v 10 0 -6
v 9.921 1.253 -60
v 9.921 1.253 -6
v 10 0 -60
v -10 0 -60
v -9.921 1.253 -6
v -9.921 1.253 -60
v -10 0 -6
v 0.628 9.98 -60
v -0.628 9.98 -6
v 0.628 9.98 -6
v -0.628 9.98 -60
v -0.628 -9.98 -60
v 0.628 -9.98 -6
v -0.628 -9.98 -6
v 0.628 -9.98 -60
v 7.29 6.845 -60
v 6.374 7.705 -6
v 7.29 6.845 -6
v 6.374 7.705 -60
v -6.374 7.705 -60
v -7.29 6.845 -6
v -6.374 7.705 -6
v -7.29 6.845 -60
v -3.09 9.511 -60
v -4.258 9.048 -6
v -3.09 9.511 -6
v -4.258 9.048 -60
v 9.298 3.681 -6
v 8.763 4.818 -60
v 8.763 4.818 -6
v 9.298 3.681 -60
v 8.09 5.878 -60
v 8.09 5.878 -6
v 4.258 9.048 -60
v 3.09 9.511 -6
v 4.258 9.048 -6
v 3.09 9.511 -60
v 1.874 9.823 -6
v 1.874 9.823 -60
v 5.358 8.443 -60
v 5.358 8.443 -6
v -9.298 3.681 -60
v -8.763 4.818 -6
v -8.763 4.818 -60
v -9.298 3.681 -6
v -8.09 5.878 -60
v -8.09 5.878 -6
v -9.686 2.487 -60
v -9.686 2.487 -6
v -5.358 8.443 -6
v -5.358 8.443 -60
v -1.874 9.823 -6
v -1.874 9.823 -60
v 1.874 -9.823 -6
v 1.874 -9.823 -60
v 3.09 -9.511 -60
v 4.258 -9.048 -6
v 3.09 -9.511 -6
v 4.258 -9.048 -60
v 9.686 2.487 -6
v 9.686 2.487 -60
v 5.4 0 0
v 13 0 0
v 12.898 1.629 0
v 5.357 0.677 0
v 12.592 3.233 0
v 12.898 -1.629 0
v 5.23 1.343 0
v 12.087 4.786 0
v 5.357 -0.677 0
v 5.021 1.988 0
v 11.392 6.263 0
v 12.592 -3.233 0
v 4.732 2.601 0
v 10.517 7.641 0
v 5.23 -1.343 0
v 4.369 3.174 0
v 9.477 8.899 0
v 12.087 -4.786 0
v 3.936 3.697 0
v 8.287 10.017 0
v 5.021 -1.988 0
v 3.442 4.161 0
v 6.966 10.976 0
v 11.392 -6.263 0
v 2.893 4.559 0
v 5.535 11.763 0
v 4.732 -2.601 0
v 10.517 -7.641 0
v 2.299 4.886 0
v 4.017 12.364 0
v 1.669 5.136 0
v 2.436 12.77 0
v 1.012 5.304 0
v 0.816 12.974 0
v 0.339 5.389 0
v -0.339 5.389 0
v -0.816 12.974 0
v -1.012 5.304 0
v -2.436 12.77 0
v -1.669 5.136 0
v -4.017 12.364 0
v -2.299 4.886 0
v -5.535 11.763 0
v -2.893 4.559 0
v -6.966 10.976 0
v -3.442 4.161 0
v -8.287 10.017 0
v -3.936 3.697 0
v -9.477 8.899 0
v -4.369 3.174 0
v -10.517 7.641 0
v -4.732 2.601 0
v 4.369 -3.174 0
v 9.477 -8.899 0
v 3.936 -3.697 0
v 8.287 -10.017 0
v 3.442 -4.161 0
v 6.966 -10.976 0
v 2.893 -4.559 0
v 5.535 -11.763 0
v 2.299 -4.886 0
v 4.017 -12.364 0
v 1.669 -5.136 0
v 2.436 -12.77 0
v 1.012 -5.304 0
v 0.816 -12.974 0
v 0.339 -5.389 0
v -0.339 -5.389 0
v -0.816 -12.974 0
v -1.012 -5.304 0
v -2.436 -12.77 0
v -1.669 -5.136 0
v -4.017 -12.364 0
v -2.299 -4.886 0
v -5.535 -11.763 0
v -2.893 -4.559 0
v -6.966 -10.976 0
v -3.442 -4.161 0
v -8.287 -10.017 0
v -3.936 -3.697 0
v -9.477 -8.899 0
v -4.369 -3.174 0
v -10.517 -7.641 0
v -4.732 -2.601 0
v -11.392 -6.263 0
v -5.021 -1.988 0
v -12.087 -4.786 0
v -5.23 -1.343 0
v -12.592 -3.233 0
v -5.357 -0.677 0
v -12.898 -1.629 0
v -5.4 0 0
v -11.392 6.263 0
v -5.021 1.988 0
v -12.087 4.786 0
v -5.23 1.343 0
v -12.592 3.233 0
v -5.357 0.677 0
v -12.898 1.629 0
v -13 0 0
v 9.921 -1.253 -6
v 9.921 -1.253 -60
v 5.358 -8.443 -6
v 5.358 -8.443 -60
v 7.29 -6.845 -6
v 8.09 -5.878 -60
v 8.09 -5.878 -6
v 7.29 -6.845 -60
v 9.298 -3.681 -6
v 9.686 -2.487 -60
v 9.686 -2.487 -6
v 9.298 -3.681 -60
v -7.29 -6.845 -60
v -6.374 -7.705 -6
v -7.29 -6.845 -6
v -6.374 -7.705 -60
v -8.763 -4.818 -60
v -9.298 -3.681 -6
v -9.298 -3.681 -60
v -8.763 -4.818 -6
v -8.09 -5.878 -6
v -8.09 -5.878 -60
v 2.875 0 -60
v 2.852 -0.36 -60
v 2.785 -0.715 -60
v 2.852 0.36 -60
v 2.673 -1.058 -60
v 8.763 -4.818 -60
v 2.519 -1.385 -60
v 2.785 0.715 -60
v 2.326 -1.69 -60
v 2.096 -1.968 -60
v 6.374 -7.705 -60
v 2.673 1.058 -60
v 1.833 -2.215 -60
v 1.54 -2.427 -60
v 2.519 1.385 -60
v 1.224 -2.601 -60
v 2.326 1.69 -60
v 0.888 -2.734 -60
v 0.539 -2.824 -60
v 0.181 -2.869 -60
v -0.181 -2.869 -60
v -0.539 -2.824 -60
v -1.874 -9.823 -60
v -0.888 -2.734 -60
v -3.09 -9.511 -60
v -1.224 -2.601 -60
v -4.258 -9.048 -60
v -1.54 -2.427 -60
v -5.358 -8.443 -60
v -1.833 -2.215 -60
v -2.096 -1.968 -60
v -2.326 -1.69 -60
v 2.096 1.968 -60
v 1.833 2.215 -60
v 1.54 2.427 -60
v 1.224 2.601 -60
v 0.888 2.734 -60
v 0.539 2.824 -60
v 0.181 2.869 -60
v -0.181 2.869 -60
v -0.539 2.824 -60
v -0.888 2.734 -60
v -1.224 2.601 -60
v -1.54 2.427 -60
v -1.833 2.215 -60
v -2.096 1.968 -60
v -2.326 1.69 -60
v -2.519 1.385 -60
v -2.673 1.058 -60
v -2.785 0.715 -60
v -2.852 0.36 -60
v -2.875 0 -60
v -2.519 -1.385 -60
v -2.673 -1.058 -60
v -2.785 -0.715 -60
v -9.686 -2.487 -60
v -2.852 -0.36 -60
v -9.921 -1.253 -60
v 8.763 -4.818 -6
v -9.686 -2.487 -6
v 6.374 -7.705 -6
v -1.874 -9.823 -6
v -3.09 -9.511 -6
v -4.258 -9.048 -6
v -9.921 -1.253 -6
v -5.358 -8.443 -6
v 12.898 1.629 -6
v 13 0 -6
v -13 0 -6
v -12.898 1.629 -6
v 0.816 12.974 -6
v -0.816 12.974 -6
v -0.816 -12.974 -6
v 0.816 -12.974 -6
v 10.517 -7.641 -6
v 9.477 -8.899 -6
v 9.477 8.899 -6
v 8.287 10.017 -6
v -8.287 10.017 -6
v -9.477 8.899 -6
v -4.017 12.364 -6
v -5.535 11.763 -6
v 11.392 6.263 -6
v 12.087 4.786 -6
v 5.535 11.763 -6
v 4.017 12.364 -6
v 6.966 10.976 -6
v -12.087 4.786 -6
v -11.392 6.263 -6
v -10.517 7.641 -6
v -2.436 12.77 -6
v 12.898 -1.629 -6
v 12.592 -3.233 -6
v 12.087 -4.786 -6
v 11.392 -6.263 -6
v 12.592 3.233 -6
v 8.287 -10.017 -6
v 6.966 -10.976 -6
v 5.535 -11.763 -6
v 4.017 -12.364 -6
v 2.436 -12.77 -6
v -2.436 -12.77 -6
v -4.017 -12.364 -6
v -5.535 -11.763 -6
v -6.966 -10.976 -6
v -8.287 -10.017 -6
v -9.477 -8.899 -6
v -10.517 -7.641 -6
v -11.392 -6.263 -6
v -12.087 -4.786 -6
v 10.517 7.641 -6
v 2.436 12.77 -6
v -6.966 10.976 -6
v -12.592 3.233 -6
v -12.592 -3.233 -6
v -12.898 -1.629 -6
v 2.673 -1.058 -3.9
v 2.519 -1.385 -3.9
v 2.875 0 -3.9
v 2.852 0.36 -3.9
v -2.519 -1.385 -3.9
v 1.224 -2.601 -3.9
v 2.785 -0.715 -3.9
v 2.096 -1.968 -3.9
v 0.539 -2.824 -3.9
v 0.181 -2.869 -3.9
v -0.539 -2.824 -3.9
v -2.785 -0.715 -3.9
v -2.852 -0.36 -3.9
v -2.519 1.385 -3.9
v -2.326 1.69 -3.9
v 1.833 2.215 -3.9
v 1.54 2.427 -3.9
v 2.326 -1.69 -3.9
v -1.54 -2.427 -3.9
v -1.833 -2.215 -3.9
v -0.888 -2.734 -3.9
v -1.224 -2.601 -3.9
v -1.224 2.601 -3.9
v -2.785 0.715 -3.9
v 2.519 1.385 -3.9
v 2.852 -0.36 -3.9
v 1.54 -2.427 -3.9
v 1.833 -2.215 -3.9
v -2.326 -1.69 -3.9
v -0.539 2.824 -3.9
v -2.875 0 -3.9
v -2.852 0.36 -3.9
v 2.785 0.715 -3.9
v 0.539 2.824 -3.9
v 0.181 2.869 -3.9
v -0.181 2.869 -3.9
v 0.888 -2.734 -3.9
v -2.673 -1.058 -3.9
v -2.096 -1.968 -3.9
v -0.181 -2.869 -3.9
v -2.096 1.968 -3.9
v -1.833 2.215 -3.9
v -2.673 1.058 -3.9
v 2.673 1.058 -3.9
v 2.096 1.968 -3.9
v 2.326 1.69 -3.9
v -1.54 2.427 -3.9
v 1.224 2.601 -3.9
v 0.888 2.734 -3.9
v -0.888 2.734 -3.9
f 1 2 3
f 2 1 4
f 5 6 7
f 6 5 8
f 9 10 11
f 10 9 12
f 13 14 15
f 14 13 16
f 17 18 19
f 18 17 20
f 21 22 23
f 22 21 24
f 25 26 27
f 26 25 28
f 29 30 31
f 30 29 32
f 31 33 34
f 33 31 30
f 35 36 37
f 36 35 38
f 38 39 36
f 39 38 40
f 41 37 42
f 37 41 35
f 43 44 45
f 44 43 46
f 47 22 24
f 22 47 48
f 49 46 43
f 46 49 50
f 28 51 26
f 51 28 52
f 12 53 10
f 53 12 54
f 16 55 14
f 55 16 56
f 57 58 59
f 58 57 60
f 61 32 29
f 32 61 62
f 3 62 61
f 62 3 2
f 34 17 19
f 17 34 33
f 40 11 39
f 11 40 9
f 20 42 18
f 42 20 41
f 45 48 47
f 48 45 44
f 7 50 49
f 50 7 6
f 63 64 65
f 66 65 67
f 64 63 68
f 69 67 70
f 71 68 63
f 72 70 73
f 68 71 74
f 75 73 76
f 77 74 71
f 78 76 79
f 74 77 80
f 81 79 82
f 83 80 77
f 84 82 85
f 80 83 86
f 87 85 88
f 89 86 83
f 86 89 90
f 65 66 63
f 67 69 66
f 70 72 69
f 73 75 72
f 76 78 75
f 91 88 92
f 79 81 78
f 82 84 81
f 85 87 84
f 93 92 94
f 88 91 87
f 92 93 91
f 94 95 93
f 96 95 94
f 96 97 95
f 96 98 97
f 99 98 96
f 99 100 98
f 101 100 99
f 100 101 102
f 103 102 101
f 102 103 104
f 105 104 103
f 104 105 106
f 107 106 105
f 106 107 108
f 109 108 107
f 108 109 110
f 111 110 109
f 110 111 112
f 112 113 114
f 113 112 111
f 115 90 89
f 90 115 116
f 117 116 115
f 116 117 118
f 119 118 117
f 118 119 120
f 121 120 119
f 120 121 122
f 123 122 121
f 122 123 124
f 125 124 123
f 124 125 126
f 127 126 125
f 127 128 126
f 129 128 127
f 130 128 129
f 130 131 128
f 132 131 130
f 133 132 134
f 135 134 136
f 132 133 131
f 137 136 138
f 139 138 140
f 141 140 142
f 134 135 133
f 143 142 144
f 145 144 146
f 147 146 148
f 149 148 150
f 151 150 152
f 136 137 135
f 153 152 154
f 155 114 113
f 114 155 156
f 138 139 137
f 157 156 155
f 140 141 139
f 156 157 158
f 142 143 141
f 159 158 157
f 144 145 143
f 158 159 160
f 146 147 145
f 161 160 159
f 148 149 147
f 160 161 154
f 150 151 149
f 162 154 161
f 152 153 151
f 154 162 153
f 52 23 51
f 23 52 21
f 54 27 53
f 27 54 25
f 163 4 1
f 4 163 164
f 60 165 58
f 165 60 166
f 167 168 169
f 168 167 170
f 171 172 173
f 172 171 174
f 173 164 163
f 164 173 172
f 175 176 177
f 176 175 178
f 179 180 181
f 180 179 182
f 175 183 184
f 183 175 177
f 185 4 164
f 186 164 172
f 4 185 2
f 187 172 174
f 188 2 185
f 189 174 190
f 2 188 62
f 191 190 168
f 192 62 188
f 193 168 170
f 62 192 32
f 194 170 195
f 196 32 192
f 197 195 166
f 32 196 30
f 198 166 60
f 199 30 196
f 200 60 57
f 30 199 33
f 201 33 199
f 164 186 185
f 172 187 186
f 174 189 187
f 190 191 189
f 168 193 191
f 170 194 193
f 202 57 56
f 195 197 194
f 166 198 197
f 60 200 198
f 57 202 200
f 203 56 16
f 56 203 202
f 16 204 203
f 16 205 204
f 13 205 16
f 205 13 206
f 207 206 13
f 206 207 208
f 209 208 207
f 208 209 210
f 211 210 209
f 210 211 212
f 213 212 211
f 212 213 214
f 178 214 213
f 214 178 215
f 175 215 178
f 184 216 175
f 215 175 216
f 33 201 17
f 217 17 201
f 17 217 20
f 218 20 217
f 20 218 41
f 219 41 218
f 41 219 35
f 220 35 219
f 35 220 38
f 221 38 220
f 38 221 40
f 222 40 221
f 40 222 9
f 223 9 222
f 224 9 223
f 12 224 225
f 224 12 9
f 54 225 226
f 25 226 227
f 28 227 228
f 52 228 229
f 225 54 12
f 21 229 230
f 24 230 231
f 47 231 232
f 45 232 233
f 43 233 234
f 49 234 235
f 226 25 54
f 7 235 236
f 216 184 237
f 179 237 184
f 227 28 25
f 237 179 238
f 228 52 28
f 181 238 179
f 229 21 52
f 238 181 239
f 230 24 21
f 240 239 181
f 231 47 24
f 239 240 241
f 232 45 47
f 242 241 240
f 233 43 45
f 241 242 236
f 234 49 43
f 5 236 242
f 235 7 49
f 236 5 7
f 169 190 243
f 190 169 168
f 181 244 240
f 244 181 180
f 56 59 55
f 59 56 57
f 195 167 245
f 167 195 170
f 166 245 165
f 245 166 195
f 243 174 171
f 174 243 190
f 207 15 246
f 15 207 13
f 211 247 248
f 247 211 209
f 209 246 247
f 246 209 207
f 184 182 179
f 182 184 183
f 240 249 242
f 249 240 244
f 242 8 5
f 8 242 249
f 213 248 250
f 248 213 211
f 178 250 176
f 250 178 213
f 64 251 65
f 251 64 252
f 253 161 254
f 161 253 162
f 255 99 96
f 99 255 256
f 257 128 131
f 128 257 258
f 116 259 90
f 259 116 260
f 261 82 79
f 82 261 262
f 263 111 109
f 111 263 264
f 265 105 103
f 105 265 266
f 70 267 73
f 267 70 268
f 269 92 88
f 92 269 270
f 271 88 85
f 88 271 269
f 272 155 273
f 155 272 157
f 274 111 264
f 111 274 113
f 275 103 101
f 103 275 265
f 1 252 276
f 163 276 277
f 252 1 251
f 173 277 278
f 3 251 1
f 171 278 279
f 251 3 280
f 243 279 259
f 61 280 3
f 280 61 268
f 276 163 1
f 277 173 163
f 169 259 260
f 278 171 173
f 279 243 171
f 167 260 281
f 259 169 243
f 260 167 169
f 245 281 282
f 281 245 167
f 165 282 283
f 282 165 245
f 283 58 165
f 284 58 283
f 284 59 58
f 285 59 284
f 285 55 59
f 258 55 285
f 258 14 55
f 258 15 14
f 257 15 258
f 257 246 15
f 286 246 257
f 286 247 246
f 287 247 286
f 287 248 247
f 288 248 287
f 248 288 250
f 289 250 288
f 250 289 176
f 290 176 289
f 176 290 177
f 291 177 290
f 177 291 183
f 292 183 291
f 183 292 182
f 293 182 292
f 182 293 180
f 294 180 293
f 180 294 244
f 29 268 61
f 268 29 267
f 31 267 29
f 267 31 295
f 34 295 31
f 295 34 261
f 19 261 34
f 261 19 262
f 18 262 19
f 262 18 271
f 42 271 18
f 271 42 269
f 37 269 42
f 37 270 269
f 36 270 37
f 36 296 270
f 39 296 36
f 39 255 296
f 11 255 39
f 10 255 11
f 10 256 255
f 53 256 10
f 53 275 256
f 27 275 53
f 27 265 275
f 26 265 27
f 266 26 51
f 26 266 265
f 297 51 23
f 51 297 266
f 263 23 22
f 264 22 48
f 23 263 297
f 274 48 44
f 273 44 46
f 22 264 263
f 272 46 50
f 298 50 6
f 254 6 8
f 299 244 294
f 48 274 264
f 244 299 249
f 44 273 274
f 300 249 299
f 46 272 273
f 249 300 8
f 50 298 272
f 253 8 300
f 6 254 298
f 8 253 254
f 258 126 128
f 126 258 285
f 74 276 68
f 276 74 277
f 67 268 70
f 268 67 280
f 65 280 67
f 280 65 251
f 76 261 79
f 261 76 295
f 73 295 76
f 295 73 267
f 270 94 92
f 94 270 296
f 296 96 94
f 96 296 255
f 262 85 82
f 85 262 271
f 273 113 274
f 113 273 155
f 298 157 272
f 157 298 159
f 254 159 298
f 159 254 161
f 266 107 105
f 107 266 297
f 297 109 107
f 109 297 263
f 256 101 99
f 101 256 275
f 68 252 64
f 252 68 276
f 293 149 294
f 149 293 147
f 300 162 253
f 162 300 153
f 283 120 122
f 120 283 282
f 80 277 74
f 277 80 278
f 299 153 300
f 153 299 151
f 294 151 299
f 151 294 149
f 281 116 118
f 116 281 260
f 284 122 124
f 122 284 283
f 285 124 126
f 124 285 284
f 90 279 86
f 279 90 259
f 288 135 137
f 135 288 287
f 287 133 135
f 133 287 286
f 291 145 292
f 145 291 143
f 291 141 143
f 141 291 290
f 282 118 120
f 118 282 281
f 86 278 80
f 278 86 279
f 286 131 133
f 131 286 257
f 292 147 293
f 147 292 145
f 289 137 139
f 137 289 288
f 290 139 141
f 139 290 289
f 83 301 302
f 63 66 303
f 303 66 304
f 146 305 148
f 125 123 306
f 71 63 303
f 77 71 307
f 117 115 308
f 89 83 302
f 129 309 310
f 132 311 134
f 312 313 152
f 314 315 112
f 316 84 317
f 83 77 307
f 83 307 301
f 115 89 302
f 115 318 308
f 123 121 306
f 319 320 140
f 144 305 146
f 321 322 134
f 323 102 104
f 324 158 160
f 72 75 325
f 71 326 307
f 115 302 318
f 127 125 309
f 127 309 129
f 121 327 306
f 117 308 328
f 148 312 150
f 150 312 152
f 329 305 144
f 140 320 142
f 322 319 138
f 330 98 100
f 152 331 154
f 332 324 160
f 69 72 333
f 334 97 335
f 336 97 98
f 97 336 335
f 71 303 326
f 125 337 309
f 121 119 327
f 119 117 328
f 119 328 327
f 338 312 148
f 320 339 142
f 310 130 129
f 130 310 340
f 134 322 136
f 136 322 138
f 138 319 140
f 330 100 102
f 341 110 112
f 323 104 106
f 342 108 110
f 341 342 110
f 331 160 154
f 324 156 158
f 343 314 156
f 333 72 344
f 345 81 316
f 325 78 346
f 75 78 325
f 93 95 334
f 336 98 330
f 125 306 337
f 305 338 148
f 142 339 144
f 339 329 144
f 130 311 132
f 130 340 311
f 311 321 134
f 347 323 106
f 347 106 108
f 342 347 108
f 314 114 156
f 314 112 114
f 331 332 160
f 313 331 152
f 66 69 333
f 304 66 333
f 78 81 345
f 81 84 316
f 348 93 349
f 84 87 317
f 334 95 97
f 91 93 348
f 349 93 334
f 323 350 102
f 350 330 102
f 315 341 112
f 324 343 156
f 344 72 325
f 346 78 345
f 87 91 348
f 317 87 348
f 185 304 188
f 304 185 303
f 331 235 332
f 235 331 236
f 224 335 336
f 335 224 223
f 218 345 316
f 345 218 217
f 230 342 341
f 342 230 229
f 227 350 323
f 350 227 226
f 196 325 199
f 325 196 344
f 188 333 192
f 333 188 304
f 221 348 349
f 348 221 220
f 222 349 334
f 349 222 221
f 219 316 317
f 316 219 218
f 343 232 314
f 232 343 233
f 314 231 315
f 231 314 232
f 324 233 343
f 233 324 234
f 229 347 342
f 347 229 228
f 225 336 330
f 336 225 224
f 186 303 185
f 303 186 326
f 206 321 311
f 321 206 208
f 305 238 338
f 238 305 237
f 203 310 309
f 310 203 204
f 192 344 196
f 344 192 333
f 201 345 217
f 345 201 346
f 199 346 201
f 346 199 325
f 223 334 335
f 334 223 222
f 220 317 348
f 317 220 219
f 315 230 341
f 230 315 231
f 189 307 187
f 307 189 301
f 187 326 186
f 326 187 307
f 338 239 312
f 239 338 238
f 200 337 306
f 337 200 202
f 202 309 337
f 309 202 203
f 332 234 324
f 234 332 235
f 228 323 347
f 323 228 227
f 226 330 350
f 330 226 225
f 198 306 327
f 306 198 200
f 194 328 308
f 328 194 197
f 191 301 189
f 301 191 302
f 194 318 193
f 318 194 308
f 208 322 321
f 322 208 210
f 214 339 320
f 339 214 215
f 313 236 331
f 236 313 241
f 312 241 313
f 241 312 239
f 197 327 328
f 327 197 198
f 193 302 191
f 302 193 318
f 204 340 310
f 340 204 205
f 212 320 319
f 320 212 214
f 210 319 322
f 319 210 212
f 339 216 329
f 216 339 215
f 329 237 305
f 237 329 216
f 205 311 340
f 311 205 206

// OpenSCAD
$fn = 50;


difference() {
	union() {
		translate(v = [0, 0, -60.0000000000]) {
			cylinder(h = 60, r = 10.0000000000);
		}
		translate(v = [0, 0, -6.0000000000]) {
			cylinder(h = 6, r = 13.0000000000);
		}
	}
	union() {
		translate(v = [0, 0, 0]) {
			rotate(a = [0, 0, 0]) {
				difference() {
					union() {
						#translate(v = [0, 0, -60.0000000000]) {
							cylinder(h = 60, r = 2.6000000000);
						}
						#translate(v = [0, 0, -3.9000000000]) {
							cylinder(h = 3.9000000000, r1 = 2.8750000000, r2 = 5.4000000000);
						}
						#translate(v = [0, 0, -60.0000000000]) {
							cylinder(h = 60, r = 2.8750000000);
						}
						#translate(v = [0, 0, -60.0000000000]) {
							cylinder(h = 60, r = 2.6000000000);
						}
					}
					union();
				}
			}
		}
	}
}
